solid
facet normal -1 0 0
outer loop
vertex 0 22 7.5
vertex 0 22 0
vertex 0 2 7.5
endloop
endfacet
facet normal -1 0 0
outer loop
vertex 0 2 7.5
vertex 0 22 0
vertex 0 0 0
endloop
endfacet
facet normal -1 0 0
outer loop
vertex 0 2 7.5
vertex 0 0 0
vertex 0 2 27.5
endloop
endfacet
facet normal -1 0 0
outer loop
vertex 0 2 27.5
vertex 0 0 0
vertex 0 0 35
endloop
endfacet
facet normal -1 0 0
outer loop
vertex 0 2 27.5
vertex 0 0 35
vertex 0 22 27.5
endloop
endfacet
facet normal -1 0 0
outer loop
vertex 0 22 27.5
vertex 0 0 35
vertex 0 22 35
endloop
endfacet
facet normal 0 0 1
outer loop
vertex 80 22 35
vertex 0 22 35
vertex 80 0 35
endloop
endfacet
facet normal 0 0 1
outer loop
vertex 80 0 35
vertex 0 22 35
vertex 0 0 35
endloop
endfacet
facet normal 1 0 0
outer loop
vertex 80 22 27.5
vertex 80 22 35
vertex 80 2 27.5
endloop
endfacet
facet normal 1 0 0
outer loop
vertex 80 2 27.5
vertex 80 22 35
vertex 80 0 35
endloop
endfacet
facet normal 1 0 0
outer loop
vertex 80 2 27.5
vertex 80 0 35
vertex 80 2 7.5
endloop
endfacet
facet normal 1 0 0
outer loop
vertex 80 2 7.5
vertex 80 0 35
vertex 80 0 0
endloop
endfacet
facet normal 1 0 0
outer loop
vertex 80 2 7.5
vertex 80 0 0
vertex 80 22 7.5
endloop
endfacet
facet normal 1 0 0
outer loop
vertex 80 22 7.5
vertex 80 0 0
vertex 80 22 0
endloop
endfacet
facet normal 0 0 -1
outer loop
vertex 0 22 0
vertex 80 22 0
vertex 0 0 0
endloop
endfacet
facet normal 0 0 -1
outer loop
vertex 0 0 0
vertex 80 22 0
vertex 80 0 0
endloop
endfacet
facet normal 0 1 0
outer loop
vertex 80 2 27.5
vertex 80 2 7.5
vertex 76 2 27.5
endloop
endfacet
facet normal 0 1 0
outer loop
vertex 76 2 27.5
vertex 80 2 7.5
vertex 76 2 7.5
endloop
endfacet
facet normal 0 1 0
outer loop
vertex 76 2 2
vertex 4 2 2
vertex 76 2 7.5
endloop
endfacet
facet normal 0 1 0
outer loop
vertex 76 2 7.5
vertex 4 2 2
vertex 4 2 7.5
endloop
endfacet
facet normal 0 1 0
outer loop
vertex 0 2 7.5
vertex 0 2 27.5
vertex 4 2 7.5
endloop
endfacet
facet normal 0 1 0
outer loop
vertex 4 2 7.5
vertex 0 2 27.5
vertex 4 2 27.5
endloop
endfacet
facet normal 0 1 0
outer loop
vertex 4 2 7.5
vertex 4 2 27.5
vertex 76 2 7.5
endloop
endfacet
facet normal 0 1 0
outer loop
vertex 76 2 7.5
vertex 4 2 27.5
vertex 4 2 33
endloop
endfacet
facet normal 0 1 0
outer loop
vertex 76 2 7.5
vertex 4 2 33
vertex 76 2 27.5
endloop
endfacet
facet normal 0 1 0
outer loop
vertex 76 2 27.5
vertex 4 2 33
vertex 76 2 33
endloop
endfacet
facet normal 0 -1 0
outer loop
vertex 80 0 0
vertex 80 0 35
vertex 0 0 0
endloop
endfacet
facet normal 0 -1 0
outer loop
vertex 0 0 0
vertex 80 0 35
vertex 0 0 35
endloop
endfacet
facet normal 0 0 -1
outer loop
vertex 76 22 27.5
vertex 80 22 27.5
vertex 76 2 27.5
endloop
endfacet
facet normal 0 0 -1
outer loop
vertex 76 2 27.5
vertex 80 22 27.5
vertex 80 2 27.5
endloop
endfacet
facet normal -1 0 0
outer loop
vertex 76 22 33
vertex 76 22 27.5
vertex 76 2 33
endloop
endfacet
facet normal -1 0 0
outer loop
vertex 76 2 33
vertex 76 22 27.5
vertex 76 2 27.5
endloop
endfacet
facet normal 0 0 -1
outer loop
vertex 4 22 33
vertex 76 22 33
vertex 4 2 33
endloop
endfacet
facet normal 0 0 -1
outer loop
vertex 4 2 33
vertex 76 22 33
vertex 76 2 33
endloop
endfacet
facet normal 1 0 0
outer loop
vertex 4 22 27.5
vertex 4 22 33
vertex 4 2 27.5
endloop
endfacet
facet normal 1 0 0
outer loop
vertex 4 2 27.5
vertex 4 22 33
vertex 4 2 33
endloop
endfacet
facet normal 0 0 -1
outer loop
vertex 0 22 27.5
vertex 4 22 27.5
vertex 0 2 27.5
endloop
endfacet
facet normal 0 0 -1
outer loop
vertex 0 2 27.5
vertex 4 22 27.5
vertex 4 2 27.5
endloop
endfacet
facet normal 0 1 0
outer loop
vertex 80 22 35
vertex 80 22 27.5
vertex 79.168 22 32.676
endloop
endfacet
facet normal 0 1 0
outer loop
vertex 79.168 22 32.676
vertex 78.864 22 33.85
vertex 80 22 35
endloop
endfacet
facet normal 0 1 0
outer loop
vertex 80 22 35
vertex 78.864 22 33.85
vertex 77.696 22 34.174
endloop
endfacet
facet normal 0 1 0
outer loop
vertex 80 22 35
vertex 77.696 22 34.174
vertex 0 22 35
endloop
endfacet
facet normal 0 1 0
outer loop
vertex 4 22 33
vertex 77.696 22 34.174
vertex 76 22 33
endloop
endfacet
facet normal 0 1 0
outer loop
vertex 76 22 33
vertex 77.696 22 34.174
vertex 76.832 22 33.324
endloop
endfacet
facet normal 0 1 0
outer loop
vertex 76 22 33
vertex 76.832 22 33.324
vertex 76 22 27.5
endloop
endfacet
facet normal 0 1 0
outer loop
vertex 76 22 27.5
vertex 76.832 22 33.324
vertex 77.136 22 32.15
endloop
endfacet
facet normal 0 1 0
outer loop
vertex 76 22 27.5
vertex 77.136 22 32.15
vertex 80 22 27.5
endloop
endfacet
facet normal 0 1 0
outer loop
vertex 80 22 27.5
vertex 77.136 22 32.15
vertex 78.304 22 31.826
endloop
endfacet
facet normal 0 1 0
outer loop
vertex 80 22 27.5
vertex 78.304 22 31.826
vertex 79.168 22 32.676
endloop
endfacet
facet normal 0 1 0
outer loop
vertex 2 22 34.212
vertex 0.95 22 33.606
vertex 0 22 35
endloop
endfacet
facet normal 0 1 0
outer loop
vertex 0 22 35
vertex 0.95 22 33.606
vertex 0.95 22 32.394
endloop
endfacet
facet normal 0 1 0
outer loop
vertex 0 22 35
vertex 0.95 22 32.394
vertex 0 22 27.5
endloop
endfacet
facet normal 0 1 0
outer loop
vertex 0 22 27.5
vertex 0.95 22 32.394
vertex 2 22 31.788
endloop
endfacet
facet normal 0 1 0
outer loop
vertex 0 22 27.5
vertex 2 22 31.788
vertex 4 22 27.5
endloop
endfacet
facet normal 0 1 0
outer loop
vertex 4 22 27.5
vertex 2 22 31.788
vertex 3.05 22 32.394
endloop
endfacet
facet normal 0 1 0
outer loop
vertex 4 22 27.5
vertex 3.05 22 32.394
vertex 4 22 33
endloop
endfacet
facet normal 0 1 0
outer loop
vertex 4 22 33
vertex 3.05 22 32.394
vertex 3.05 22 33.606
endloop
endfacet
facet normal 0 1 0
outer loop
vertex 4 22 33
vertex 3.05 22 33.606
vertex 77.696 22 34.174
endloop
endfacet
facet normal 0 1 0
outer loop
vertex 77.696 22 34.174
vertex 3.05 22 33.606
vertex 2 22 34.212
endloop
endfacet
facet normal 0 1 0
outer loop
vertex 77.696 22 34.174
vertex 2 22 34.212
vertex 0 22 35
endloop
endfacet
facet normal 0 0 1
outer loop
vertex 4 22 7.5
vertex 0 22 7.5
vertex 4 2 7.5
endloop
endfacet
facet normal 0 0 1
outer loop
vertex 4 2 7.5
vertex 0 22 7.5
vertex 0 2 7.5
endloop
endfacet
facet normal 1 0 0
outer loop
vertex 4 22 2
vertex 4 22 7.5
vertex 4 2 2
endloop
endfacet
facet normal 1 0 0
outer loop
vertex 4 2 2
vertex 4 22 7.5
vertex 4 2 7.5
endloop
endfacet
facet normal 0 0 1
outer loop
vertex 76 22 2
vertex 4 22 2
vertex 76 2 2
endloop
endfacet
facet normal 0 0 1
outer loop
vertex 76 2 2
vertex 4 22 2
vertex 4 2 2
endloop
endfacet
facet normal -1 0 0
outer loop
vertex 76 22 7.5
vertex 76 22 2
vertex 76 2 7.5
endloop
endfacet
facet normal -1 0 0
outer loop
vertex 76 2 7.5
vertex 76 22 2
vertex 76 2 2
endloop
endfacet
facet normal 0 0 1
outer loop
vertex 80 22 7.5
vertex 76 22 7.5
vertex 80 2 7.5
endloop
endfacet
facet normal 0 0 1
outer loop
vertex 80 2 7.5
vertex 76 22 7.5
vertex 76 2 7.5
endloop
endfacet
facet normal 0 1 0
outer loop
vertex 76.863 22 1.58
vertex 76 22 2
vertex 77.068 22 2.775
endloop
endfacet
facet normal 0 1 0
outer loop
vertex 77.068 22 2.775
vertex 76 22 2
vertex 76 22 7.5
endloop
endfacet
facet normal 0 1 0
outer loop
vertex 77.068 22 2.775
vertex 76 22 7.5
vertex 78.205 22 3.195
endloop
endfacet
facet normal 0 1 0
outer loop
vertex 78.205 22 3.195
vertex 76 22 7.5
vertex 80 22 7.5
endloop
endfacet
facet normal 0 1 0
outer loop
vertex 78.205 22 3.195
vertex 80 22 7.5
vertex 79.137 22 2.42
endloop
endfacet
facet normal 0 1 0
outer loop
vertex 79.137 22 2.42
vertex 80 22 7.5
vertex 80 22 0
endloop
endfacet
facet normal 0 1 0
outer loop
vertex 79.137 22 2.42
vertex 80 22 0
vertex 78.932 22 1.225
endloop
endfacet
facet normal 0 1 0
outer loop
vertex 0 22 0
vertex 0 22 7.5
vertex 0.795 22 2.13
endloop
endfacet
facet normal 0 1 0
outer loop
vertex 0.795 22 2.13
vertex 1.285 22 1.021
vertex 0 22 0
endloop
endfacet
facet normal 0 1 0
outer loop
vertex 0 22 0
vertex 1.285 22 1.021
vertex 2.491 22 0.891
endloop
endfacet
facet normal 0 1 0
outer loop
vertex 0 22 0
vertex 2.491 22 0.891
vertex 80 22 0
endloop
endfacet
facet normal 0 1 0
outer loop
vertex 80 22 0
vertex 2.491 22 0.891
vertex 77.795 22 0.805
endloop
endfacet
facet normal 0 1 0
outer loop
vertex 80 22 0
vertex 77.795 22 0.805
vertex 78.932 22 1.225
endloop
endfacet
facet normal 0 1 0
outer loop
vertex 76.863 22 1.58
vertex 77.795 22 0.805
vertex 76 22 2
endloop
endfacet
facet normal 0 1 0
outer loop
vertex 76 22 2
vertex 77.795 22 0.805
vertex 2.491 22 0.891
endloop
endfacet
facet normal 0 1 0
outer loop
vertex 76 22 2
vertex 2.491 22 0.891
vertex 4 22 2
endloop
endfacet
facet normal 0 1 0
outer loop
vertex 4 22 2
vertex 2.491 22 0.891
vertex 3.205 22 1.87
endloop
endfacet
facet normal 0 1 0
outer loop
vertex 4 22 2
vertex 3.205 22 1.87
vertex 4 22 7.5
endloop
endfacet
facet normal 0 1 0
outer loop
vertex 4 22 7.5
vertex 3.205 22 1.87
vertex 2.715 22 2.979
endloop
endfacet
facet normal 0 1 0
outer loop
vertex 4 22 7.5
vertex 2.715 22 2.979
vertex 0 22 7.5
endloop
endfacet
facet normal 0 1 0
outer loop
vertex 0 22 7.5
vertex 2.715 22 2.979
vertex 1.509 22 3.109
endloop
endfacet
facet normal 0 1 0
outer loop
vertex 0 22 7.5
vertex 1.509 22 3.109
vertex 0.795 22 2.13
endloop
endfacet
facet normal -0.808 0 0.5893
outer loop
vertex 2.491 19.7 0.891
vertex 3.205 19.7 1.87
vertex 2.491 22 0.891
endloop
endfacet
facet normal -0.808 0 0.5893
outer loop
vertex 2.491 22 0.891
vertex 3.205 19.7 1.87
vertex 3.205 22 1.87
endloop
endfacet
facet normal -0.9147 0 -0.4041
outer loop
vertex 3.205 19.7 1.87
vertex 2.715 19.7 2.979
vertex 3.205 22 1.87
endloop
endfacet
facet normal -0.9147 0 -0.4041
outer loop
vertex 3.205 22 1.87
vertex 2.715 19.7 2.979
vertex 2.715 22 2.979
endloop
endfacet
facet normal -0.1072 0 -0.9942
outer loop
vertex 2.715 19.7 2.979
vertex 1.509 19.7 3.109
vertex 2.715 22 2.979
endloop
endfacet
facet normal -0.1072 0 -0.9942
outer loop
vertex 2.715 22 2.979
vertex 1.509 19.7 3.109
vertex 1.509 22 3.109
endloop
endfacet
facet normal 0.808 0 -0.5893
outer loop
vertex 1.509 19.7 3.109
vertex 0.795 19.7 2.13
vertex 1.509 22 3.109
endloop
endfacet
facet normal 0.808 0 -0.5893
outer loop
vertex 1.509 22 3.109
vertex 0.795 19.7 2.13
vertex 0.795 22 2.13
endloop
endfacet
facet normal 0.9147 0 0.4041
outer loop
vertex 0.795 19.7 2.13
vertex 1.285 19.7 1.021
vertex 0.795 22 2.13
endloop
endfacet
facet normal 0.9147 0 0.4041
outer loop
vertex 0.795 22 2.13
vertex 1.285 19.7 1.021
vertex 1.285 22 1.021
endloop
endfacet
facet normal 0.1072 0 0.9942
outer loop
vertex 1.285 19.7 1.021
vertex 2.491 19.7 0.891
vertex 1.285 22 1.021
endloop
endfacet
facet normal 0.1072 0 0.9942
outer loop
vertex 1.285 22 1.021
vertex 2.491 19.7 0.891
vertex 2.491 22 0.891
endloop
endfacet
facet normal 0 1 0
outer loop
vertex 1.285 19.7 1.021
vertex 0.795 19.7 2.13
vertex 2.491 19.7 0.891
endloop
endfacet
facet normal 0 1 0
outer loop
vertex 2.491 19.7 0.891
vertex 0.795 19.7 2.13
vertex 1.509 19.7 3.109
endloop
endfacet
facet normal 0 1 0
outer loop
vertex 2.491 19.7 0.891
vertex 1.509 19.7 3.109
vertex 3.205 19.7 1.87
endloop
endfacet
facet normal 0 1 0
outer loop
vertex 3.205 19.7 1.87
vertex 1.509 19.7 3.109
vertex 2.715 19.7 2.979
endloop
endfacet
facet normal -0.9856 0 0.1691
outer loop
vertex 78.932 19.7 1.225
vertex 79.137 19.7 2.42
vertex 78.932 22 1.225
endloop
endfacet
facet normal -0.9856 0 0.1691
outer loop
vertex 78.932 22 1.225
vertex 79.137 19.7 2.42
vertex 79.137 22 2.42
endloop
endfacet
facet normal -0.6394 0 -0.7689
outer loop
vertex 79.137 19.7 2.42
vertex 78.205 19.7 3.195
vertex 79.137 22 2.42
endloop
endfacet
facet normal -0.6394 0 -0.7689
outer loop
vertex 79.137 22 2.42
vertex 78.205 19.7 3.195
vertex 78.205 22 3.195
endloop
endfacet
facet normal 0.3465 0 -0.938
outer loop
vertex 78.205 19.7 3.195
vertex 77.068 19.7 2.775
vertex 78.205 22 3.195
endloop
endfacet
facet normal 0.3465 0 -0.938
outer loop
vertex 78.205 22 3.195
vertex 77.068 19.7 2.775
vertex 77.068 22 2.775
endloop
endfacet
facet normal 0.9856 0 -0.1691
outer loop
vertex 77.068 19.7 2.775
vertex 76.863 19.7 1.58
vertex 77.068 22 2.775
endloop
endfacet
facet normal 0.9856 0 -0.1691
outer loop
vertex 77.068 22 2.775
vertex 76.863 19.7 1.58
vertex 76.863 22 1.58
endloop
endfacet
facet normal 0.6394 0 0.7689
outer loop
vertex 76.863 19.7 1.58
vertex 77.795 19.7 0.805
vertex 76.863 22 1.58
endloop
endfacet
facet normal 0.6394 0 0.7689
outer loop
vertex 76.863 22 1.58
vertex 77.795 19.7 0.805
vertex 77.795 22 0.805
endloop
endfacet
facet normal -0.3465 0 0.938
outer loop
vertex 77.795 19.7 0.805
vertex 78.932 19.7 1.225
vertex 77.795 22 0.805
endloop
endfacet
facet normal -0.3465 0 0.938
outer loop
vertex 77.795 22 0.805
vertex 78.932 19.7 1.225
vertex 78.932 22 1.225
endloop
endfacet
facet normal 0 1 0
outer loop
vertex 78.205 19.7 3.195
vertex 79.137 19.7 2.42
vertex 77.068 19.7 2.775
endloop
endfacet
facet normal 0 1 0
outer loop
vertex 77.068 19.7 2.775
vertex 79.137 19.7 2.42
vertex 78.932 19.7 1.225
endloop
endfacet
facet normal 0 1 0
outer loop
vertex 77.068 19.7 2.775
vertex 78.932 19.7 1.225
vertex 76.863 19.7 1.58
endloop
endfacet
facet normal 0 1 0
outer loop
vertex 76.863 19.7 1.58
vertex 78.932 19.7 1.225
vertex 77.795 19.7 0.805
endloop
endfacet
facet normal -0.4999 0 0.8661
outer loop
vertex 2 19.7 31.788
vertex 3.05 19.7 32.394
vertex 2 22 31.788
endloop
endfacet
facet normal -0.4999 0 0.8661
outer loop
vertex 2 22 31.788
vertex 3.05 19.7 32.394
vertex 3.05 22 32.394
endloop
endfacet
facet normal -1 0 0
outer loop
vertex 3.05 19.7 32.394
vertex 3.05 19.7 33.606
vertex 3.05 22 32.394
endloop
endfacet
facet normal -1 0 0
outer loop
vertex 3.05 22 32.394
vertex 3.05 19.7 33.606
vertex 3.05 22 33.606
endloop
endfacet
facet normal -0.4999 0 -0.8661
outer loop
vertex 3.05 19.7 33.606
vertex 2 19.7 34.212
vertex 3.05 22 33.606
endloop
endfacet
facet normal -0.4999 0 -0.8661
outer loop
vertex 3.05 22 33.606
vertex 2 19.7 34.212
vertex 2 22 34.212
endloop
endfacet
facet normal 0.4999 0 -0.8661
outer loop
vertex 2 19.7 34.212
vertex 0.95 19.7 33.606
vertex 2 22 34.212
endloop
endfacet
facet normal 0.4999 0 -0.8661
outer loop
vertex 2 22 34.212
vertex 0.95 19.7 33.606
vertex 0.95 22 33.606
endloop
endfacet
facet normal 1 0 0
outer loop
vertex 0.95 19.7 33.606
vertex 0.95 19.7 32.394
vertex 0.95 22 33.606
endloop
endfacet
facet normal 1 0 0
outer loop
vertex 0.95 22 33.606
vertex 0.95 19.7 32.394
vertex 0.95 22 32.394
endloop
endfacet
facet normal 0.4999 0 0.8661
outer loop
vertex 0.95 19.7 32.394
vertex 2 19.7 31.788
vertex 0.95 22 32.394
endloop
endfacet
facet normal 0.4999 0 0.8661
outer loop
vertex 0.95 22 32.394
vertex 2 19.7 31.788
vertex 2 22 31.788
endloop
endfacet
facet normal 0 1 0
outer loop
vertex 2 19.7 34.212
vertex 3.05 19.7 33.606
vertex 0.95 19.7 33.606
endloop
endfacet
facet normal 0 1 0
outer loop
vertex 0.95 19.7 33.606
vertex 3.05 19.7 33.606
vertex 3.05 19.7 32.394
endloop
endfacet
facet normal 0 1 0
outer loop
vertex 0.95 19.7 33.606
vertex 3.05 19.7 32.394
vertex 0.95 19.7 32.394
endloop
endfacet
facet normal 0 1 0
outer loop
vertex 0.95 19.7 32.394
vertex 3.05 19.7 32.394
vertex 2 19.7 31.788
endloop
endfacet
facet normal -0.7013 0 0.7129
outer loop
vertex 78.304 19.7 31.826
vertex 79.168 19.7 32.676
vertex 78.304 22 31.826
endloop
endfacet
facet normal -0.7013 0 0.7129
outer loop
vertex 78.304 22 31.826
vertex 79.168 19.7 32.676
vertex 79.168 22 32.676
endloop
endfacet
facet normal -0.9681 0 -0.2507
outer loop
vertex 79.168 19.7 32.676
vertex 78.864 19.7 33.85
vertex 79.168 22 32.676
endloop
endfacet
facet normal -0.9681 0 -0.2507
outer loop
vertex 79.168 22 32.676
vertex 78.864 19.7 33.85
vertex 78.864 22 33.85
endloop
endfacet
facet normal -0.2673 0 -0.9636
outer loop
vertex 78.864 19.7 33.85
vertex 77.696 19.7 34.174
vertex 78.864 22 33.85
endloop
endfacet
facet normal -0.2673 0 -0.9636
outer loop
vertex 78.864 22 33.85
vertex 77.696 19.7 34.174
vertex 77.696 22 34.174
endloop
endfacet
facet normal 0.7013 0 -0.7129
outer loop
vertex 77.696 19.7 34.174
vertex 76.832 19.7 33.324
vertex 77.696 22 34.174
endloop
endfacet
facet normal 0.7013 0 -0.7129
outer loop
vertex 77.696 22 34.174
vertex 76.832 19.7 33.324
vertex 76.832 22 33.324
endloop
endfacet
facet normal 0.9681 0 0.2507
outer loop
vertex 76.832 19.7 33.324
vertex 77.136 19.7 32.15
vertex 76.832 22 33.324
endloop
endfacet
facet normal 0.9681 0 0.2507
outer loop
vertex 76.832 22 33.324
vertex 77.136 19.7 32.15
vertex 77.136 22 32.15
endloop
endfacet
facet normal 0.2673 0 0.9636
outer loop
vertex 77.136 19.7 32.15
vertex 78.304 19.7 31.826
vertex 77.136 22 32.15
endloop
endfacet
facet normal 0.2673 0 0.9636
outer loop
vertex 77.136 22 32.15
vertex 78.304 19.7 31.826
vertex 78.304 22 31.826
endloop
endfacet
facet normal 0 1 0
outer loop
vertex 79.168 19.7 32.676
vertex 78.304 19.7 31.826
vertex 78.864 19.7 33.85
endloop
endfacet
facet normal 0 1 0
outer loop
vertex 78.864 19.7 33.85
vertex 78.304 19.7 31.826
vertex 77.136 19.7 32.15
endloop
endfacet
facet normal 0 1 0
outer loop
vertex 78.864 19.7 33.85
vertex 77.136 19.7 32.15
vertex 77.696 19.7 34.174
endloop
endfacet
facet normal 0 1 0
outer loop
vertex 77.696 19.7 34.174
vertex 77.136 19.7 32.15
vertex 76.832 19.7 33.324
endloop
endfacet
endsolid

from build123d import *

# Parameters (mm, degrees)
SKETCH1_W           = 80
SKETCH1_H           = 35
BOSS_EXTRUDE1_DEPTH = 2
BOSS_EXTRUDE2_DEPTH = 20
CUT_EXTRUDE1_DEPTH  = 2.3


with BuildPart() as part:
    # Sketch1 → Boss-Extrude1 (new body)
    with BuildSketch(Plane(origin=(0, 0, 0), x_dir=(1, 0, 0), z_dir=(0, 1, 0))):
        with Locations((40, -17.5)):
            Rectangle(SKETCH1_W, SKETCH1_H)
    extrude(amount=BOSS_EXTRUDE1_DEPTH)

    # Sketch2 → Boss-Extrude2 (add)
    with BuildSketch(Plane(origin=(0, 2, 0), x_dir=(1, 0, 0), z_dir=(0, 1, 0))):
        Polygon((0, 0), (80, 0), (80, -7.5), (76, -7.5), (76, -2), (4, -2), (4, -7.5), (0, -7.5), align=None)
        Polygon((0, -35), (80, -35), (80, -27.5), (76, -27.5), (76, -33), (4, -33), (4, -27.5), (0, -27.5), align=None)
    extrude(amount=BOSS_EXTRUDE2_DEPTH)

    # Sketch3 → Cut-Extrude1 (cut)
    with BuildSketch(Plane(origin=(0, 22, 0), x_dir=(1, 0, 0), z_dir=(0, 1, 0))):
        Polygon((2.490559859, -0.891238969), (1.285064709, -1.020782184), (0.794504851, -2.129543216), (1.509440141, -3.108761031), (2.714935291, -2.979217816), (3.205495149, -1.870456784), align=None)
        Polygon((2, -31.787564435), (0.95, -32.393782217), (0.95, -33.606217783), (2, -34.212435565), (3.05, -33.606217783), (3.05, -32.393782217), align=None)
        Polygon((78.304035901, -31.826304055), (77.135567446, -32.149849214), (76.831531545, -33.323545158), (77.695964099, -34.173695945), (78.864432554, -33.850150786), (79.168468455, -32.676454842), align=None)
        Polygon((78.932445098, -1.225050879), (77.795096923, -0.805004297), (76.862651826, -1.579953418), (77.067554902, -2.774949121), (78.204903077, -3.194995703), (79.137348174, -2.420046582), align=None)
    extrude(amount=-CUT_EXTRUDE1_DEPTH, mode=Mode.SUBTRACT)


solid = part.part
